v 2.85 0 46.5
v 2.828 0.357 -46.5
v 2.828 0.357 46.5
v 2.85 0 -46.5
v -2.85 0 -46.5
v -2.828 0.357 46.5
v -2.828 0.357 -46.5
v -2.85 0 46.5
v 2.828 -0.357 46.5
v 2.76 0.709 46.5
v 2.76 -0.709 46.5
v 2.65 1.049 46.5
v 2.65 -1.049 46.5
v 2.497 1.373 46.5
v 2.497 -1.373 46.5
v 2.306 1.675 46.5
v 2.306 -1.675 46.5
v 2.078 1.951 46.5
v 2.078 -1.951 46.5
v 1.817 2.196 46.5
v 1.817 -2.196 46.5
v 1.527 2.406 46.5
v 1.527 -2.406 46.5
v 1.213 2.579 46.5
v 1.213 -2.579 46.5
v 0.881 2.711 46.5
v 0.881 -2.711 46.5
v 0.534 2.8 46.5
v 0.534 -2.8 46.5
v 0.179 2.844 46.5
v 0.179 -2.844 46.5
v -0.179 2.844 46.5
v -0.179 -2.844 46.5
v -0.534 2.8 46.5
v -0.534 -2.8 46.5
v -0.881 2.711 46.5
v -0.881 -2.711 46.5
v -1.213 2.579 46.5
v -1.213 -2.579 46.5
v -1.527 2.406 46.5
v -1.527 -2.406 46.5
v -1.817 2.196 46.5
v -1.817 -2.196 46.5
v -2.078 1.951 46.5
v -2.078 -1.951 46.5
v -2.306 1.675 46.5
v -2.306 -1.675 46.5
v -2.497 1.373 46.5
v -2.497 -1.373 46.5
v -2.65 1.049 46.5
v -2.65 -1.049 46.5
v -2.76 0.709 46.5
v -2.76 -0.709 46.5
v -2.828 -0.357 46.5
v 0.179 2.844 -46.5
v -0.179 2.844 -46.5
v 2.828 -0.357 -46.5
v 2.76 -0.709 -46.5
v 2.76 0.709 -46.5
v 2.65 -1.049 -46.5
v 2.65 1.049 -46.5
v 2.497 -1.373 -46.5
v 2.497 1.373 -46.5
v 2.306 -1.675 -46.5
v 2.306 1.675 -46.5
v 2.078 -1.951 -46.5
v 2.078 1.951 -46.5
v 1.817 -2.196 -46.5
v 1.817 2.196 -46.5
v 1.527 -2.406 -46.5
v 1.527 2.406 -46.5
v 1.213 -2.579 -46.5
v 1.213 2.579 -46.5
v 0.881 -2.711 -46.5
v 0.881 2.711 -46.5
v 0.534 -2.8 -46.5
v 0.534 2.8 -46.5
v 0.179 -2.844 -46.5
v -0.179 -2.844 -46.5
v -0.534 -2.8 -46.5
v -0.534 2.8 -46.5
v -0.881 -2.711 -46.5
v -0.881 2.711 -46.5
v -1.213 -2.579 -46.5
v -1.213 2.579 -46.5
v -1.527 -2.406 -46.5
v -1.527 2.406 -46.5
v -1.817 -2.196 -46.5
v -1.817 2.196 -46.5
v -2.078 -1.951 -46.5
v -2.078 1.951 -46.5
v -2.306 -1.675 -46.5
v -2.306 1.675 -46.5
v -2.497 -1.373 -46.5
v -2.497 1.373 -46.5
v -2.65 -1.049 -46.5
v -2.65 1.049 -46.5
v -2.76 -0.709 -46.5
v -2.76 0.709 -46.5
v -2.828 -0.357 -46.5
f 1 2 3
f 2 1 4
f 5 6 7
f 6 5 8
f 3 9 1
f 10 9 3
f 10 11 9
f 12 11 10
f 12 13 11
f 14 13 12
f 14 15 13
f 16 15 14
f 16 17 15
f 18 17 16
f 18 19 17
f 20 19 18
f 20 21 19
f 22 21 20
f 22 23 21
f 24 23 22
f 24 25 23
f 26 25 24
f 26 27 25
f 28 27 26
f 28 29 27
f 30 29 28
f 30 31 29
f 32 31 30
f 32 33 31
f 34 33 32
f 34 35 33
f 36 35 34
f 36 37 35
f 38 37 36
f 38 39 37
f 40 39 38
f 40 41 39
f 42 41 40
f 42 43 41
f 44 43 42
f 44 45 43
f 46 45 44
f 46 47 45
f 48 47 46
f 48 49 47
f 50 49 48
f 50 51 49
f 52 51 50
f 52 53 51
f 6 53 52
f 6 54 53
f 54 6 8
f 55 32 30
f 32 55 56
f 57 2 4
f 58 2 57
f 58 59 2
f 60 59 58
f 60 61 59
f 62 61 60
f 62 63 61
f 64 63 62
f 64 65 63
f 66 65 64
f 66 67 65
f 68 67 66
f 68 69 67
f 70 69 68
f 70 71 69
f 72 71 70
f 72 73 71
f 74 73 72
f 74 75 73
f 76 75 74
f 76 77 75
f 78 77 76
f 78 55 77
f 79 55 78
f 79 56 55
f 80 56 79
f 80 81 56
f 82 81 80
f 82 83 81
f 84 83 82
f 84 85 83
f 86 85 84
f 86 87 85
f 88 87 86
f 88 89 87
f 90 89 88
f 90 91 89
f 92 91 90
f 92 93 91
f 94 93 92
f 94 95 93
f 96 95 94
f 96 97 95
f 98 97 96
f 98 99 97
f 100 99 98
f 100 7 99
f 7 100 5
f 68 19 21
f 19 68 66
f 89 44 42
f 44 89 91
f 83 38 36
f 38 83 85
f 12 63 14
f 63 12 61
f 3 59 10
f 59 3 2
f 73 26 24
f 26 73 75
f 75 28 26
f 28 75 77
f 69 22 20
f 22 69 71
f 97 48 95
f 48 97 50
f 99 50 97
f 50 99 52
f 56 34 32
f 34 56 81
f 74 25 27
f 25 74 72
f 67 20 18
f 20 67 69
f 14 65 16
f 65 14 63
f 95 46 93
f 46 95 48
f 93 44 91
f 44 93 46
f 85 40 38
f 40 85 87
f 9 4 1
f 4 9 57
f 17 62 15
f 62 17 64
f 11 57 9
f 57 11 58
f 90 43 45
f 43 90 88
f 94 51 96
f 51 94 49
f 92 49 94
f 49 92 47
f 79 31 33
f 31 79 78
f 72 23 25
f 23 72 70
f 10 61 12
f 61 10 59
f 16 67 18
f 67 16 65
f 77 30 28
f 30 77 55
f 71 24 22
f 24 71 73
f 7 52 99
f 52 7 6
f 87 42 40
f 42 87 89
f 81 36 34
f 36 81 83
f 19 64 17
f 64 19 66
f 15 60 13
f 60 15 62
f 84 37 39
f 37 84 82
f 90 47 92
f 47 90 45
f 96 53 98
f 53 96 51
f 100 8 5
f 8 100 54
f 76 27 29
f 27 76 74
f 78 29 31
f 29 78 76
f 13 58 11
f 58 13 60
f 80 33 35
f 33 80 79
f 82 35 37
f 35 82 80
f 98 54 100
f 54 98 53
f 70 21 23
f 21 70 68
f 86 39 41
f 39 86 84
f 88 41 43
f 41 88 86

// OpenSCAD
$fn = 50;


difference() {
	union() {
		translate(v = [0, 0, -46.5000000000]) {
			cylinder(h = 93, r = 2.8500000000);
		}
	}
	union() {
		translate(v = [0, 0, -100.0000000000]) {
			cylinder(h = 200, r = 0);
		}
	}
}
